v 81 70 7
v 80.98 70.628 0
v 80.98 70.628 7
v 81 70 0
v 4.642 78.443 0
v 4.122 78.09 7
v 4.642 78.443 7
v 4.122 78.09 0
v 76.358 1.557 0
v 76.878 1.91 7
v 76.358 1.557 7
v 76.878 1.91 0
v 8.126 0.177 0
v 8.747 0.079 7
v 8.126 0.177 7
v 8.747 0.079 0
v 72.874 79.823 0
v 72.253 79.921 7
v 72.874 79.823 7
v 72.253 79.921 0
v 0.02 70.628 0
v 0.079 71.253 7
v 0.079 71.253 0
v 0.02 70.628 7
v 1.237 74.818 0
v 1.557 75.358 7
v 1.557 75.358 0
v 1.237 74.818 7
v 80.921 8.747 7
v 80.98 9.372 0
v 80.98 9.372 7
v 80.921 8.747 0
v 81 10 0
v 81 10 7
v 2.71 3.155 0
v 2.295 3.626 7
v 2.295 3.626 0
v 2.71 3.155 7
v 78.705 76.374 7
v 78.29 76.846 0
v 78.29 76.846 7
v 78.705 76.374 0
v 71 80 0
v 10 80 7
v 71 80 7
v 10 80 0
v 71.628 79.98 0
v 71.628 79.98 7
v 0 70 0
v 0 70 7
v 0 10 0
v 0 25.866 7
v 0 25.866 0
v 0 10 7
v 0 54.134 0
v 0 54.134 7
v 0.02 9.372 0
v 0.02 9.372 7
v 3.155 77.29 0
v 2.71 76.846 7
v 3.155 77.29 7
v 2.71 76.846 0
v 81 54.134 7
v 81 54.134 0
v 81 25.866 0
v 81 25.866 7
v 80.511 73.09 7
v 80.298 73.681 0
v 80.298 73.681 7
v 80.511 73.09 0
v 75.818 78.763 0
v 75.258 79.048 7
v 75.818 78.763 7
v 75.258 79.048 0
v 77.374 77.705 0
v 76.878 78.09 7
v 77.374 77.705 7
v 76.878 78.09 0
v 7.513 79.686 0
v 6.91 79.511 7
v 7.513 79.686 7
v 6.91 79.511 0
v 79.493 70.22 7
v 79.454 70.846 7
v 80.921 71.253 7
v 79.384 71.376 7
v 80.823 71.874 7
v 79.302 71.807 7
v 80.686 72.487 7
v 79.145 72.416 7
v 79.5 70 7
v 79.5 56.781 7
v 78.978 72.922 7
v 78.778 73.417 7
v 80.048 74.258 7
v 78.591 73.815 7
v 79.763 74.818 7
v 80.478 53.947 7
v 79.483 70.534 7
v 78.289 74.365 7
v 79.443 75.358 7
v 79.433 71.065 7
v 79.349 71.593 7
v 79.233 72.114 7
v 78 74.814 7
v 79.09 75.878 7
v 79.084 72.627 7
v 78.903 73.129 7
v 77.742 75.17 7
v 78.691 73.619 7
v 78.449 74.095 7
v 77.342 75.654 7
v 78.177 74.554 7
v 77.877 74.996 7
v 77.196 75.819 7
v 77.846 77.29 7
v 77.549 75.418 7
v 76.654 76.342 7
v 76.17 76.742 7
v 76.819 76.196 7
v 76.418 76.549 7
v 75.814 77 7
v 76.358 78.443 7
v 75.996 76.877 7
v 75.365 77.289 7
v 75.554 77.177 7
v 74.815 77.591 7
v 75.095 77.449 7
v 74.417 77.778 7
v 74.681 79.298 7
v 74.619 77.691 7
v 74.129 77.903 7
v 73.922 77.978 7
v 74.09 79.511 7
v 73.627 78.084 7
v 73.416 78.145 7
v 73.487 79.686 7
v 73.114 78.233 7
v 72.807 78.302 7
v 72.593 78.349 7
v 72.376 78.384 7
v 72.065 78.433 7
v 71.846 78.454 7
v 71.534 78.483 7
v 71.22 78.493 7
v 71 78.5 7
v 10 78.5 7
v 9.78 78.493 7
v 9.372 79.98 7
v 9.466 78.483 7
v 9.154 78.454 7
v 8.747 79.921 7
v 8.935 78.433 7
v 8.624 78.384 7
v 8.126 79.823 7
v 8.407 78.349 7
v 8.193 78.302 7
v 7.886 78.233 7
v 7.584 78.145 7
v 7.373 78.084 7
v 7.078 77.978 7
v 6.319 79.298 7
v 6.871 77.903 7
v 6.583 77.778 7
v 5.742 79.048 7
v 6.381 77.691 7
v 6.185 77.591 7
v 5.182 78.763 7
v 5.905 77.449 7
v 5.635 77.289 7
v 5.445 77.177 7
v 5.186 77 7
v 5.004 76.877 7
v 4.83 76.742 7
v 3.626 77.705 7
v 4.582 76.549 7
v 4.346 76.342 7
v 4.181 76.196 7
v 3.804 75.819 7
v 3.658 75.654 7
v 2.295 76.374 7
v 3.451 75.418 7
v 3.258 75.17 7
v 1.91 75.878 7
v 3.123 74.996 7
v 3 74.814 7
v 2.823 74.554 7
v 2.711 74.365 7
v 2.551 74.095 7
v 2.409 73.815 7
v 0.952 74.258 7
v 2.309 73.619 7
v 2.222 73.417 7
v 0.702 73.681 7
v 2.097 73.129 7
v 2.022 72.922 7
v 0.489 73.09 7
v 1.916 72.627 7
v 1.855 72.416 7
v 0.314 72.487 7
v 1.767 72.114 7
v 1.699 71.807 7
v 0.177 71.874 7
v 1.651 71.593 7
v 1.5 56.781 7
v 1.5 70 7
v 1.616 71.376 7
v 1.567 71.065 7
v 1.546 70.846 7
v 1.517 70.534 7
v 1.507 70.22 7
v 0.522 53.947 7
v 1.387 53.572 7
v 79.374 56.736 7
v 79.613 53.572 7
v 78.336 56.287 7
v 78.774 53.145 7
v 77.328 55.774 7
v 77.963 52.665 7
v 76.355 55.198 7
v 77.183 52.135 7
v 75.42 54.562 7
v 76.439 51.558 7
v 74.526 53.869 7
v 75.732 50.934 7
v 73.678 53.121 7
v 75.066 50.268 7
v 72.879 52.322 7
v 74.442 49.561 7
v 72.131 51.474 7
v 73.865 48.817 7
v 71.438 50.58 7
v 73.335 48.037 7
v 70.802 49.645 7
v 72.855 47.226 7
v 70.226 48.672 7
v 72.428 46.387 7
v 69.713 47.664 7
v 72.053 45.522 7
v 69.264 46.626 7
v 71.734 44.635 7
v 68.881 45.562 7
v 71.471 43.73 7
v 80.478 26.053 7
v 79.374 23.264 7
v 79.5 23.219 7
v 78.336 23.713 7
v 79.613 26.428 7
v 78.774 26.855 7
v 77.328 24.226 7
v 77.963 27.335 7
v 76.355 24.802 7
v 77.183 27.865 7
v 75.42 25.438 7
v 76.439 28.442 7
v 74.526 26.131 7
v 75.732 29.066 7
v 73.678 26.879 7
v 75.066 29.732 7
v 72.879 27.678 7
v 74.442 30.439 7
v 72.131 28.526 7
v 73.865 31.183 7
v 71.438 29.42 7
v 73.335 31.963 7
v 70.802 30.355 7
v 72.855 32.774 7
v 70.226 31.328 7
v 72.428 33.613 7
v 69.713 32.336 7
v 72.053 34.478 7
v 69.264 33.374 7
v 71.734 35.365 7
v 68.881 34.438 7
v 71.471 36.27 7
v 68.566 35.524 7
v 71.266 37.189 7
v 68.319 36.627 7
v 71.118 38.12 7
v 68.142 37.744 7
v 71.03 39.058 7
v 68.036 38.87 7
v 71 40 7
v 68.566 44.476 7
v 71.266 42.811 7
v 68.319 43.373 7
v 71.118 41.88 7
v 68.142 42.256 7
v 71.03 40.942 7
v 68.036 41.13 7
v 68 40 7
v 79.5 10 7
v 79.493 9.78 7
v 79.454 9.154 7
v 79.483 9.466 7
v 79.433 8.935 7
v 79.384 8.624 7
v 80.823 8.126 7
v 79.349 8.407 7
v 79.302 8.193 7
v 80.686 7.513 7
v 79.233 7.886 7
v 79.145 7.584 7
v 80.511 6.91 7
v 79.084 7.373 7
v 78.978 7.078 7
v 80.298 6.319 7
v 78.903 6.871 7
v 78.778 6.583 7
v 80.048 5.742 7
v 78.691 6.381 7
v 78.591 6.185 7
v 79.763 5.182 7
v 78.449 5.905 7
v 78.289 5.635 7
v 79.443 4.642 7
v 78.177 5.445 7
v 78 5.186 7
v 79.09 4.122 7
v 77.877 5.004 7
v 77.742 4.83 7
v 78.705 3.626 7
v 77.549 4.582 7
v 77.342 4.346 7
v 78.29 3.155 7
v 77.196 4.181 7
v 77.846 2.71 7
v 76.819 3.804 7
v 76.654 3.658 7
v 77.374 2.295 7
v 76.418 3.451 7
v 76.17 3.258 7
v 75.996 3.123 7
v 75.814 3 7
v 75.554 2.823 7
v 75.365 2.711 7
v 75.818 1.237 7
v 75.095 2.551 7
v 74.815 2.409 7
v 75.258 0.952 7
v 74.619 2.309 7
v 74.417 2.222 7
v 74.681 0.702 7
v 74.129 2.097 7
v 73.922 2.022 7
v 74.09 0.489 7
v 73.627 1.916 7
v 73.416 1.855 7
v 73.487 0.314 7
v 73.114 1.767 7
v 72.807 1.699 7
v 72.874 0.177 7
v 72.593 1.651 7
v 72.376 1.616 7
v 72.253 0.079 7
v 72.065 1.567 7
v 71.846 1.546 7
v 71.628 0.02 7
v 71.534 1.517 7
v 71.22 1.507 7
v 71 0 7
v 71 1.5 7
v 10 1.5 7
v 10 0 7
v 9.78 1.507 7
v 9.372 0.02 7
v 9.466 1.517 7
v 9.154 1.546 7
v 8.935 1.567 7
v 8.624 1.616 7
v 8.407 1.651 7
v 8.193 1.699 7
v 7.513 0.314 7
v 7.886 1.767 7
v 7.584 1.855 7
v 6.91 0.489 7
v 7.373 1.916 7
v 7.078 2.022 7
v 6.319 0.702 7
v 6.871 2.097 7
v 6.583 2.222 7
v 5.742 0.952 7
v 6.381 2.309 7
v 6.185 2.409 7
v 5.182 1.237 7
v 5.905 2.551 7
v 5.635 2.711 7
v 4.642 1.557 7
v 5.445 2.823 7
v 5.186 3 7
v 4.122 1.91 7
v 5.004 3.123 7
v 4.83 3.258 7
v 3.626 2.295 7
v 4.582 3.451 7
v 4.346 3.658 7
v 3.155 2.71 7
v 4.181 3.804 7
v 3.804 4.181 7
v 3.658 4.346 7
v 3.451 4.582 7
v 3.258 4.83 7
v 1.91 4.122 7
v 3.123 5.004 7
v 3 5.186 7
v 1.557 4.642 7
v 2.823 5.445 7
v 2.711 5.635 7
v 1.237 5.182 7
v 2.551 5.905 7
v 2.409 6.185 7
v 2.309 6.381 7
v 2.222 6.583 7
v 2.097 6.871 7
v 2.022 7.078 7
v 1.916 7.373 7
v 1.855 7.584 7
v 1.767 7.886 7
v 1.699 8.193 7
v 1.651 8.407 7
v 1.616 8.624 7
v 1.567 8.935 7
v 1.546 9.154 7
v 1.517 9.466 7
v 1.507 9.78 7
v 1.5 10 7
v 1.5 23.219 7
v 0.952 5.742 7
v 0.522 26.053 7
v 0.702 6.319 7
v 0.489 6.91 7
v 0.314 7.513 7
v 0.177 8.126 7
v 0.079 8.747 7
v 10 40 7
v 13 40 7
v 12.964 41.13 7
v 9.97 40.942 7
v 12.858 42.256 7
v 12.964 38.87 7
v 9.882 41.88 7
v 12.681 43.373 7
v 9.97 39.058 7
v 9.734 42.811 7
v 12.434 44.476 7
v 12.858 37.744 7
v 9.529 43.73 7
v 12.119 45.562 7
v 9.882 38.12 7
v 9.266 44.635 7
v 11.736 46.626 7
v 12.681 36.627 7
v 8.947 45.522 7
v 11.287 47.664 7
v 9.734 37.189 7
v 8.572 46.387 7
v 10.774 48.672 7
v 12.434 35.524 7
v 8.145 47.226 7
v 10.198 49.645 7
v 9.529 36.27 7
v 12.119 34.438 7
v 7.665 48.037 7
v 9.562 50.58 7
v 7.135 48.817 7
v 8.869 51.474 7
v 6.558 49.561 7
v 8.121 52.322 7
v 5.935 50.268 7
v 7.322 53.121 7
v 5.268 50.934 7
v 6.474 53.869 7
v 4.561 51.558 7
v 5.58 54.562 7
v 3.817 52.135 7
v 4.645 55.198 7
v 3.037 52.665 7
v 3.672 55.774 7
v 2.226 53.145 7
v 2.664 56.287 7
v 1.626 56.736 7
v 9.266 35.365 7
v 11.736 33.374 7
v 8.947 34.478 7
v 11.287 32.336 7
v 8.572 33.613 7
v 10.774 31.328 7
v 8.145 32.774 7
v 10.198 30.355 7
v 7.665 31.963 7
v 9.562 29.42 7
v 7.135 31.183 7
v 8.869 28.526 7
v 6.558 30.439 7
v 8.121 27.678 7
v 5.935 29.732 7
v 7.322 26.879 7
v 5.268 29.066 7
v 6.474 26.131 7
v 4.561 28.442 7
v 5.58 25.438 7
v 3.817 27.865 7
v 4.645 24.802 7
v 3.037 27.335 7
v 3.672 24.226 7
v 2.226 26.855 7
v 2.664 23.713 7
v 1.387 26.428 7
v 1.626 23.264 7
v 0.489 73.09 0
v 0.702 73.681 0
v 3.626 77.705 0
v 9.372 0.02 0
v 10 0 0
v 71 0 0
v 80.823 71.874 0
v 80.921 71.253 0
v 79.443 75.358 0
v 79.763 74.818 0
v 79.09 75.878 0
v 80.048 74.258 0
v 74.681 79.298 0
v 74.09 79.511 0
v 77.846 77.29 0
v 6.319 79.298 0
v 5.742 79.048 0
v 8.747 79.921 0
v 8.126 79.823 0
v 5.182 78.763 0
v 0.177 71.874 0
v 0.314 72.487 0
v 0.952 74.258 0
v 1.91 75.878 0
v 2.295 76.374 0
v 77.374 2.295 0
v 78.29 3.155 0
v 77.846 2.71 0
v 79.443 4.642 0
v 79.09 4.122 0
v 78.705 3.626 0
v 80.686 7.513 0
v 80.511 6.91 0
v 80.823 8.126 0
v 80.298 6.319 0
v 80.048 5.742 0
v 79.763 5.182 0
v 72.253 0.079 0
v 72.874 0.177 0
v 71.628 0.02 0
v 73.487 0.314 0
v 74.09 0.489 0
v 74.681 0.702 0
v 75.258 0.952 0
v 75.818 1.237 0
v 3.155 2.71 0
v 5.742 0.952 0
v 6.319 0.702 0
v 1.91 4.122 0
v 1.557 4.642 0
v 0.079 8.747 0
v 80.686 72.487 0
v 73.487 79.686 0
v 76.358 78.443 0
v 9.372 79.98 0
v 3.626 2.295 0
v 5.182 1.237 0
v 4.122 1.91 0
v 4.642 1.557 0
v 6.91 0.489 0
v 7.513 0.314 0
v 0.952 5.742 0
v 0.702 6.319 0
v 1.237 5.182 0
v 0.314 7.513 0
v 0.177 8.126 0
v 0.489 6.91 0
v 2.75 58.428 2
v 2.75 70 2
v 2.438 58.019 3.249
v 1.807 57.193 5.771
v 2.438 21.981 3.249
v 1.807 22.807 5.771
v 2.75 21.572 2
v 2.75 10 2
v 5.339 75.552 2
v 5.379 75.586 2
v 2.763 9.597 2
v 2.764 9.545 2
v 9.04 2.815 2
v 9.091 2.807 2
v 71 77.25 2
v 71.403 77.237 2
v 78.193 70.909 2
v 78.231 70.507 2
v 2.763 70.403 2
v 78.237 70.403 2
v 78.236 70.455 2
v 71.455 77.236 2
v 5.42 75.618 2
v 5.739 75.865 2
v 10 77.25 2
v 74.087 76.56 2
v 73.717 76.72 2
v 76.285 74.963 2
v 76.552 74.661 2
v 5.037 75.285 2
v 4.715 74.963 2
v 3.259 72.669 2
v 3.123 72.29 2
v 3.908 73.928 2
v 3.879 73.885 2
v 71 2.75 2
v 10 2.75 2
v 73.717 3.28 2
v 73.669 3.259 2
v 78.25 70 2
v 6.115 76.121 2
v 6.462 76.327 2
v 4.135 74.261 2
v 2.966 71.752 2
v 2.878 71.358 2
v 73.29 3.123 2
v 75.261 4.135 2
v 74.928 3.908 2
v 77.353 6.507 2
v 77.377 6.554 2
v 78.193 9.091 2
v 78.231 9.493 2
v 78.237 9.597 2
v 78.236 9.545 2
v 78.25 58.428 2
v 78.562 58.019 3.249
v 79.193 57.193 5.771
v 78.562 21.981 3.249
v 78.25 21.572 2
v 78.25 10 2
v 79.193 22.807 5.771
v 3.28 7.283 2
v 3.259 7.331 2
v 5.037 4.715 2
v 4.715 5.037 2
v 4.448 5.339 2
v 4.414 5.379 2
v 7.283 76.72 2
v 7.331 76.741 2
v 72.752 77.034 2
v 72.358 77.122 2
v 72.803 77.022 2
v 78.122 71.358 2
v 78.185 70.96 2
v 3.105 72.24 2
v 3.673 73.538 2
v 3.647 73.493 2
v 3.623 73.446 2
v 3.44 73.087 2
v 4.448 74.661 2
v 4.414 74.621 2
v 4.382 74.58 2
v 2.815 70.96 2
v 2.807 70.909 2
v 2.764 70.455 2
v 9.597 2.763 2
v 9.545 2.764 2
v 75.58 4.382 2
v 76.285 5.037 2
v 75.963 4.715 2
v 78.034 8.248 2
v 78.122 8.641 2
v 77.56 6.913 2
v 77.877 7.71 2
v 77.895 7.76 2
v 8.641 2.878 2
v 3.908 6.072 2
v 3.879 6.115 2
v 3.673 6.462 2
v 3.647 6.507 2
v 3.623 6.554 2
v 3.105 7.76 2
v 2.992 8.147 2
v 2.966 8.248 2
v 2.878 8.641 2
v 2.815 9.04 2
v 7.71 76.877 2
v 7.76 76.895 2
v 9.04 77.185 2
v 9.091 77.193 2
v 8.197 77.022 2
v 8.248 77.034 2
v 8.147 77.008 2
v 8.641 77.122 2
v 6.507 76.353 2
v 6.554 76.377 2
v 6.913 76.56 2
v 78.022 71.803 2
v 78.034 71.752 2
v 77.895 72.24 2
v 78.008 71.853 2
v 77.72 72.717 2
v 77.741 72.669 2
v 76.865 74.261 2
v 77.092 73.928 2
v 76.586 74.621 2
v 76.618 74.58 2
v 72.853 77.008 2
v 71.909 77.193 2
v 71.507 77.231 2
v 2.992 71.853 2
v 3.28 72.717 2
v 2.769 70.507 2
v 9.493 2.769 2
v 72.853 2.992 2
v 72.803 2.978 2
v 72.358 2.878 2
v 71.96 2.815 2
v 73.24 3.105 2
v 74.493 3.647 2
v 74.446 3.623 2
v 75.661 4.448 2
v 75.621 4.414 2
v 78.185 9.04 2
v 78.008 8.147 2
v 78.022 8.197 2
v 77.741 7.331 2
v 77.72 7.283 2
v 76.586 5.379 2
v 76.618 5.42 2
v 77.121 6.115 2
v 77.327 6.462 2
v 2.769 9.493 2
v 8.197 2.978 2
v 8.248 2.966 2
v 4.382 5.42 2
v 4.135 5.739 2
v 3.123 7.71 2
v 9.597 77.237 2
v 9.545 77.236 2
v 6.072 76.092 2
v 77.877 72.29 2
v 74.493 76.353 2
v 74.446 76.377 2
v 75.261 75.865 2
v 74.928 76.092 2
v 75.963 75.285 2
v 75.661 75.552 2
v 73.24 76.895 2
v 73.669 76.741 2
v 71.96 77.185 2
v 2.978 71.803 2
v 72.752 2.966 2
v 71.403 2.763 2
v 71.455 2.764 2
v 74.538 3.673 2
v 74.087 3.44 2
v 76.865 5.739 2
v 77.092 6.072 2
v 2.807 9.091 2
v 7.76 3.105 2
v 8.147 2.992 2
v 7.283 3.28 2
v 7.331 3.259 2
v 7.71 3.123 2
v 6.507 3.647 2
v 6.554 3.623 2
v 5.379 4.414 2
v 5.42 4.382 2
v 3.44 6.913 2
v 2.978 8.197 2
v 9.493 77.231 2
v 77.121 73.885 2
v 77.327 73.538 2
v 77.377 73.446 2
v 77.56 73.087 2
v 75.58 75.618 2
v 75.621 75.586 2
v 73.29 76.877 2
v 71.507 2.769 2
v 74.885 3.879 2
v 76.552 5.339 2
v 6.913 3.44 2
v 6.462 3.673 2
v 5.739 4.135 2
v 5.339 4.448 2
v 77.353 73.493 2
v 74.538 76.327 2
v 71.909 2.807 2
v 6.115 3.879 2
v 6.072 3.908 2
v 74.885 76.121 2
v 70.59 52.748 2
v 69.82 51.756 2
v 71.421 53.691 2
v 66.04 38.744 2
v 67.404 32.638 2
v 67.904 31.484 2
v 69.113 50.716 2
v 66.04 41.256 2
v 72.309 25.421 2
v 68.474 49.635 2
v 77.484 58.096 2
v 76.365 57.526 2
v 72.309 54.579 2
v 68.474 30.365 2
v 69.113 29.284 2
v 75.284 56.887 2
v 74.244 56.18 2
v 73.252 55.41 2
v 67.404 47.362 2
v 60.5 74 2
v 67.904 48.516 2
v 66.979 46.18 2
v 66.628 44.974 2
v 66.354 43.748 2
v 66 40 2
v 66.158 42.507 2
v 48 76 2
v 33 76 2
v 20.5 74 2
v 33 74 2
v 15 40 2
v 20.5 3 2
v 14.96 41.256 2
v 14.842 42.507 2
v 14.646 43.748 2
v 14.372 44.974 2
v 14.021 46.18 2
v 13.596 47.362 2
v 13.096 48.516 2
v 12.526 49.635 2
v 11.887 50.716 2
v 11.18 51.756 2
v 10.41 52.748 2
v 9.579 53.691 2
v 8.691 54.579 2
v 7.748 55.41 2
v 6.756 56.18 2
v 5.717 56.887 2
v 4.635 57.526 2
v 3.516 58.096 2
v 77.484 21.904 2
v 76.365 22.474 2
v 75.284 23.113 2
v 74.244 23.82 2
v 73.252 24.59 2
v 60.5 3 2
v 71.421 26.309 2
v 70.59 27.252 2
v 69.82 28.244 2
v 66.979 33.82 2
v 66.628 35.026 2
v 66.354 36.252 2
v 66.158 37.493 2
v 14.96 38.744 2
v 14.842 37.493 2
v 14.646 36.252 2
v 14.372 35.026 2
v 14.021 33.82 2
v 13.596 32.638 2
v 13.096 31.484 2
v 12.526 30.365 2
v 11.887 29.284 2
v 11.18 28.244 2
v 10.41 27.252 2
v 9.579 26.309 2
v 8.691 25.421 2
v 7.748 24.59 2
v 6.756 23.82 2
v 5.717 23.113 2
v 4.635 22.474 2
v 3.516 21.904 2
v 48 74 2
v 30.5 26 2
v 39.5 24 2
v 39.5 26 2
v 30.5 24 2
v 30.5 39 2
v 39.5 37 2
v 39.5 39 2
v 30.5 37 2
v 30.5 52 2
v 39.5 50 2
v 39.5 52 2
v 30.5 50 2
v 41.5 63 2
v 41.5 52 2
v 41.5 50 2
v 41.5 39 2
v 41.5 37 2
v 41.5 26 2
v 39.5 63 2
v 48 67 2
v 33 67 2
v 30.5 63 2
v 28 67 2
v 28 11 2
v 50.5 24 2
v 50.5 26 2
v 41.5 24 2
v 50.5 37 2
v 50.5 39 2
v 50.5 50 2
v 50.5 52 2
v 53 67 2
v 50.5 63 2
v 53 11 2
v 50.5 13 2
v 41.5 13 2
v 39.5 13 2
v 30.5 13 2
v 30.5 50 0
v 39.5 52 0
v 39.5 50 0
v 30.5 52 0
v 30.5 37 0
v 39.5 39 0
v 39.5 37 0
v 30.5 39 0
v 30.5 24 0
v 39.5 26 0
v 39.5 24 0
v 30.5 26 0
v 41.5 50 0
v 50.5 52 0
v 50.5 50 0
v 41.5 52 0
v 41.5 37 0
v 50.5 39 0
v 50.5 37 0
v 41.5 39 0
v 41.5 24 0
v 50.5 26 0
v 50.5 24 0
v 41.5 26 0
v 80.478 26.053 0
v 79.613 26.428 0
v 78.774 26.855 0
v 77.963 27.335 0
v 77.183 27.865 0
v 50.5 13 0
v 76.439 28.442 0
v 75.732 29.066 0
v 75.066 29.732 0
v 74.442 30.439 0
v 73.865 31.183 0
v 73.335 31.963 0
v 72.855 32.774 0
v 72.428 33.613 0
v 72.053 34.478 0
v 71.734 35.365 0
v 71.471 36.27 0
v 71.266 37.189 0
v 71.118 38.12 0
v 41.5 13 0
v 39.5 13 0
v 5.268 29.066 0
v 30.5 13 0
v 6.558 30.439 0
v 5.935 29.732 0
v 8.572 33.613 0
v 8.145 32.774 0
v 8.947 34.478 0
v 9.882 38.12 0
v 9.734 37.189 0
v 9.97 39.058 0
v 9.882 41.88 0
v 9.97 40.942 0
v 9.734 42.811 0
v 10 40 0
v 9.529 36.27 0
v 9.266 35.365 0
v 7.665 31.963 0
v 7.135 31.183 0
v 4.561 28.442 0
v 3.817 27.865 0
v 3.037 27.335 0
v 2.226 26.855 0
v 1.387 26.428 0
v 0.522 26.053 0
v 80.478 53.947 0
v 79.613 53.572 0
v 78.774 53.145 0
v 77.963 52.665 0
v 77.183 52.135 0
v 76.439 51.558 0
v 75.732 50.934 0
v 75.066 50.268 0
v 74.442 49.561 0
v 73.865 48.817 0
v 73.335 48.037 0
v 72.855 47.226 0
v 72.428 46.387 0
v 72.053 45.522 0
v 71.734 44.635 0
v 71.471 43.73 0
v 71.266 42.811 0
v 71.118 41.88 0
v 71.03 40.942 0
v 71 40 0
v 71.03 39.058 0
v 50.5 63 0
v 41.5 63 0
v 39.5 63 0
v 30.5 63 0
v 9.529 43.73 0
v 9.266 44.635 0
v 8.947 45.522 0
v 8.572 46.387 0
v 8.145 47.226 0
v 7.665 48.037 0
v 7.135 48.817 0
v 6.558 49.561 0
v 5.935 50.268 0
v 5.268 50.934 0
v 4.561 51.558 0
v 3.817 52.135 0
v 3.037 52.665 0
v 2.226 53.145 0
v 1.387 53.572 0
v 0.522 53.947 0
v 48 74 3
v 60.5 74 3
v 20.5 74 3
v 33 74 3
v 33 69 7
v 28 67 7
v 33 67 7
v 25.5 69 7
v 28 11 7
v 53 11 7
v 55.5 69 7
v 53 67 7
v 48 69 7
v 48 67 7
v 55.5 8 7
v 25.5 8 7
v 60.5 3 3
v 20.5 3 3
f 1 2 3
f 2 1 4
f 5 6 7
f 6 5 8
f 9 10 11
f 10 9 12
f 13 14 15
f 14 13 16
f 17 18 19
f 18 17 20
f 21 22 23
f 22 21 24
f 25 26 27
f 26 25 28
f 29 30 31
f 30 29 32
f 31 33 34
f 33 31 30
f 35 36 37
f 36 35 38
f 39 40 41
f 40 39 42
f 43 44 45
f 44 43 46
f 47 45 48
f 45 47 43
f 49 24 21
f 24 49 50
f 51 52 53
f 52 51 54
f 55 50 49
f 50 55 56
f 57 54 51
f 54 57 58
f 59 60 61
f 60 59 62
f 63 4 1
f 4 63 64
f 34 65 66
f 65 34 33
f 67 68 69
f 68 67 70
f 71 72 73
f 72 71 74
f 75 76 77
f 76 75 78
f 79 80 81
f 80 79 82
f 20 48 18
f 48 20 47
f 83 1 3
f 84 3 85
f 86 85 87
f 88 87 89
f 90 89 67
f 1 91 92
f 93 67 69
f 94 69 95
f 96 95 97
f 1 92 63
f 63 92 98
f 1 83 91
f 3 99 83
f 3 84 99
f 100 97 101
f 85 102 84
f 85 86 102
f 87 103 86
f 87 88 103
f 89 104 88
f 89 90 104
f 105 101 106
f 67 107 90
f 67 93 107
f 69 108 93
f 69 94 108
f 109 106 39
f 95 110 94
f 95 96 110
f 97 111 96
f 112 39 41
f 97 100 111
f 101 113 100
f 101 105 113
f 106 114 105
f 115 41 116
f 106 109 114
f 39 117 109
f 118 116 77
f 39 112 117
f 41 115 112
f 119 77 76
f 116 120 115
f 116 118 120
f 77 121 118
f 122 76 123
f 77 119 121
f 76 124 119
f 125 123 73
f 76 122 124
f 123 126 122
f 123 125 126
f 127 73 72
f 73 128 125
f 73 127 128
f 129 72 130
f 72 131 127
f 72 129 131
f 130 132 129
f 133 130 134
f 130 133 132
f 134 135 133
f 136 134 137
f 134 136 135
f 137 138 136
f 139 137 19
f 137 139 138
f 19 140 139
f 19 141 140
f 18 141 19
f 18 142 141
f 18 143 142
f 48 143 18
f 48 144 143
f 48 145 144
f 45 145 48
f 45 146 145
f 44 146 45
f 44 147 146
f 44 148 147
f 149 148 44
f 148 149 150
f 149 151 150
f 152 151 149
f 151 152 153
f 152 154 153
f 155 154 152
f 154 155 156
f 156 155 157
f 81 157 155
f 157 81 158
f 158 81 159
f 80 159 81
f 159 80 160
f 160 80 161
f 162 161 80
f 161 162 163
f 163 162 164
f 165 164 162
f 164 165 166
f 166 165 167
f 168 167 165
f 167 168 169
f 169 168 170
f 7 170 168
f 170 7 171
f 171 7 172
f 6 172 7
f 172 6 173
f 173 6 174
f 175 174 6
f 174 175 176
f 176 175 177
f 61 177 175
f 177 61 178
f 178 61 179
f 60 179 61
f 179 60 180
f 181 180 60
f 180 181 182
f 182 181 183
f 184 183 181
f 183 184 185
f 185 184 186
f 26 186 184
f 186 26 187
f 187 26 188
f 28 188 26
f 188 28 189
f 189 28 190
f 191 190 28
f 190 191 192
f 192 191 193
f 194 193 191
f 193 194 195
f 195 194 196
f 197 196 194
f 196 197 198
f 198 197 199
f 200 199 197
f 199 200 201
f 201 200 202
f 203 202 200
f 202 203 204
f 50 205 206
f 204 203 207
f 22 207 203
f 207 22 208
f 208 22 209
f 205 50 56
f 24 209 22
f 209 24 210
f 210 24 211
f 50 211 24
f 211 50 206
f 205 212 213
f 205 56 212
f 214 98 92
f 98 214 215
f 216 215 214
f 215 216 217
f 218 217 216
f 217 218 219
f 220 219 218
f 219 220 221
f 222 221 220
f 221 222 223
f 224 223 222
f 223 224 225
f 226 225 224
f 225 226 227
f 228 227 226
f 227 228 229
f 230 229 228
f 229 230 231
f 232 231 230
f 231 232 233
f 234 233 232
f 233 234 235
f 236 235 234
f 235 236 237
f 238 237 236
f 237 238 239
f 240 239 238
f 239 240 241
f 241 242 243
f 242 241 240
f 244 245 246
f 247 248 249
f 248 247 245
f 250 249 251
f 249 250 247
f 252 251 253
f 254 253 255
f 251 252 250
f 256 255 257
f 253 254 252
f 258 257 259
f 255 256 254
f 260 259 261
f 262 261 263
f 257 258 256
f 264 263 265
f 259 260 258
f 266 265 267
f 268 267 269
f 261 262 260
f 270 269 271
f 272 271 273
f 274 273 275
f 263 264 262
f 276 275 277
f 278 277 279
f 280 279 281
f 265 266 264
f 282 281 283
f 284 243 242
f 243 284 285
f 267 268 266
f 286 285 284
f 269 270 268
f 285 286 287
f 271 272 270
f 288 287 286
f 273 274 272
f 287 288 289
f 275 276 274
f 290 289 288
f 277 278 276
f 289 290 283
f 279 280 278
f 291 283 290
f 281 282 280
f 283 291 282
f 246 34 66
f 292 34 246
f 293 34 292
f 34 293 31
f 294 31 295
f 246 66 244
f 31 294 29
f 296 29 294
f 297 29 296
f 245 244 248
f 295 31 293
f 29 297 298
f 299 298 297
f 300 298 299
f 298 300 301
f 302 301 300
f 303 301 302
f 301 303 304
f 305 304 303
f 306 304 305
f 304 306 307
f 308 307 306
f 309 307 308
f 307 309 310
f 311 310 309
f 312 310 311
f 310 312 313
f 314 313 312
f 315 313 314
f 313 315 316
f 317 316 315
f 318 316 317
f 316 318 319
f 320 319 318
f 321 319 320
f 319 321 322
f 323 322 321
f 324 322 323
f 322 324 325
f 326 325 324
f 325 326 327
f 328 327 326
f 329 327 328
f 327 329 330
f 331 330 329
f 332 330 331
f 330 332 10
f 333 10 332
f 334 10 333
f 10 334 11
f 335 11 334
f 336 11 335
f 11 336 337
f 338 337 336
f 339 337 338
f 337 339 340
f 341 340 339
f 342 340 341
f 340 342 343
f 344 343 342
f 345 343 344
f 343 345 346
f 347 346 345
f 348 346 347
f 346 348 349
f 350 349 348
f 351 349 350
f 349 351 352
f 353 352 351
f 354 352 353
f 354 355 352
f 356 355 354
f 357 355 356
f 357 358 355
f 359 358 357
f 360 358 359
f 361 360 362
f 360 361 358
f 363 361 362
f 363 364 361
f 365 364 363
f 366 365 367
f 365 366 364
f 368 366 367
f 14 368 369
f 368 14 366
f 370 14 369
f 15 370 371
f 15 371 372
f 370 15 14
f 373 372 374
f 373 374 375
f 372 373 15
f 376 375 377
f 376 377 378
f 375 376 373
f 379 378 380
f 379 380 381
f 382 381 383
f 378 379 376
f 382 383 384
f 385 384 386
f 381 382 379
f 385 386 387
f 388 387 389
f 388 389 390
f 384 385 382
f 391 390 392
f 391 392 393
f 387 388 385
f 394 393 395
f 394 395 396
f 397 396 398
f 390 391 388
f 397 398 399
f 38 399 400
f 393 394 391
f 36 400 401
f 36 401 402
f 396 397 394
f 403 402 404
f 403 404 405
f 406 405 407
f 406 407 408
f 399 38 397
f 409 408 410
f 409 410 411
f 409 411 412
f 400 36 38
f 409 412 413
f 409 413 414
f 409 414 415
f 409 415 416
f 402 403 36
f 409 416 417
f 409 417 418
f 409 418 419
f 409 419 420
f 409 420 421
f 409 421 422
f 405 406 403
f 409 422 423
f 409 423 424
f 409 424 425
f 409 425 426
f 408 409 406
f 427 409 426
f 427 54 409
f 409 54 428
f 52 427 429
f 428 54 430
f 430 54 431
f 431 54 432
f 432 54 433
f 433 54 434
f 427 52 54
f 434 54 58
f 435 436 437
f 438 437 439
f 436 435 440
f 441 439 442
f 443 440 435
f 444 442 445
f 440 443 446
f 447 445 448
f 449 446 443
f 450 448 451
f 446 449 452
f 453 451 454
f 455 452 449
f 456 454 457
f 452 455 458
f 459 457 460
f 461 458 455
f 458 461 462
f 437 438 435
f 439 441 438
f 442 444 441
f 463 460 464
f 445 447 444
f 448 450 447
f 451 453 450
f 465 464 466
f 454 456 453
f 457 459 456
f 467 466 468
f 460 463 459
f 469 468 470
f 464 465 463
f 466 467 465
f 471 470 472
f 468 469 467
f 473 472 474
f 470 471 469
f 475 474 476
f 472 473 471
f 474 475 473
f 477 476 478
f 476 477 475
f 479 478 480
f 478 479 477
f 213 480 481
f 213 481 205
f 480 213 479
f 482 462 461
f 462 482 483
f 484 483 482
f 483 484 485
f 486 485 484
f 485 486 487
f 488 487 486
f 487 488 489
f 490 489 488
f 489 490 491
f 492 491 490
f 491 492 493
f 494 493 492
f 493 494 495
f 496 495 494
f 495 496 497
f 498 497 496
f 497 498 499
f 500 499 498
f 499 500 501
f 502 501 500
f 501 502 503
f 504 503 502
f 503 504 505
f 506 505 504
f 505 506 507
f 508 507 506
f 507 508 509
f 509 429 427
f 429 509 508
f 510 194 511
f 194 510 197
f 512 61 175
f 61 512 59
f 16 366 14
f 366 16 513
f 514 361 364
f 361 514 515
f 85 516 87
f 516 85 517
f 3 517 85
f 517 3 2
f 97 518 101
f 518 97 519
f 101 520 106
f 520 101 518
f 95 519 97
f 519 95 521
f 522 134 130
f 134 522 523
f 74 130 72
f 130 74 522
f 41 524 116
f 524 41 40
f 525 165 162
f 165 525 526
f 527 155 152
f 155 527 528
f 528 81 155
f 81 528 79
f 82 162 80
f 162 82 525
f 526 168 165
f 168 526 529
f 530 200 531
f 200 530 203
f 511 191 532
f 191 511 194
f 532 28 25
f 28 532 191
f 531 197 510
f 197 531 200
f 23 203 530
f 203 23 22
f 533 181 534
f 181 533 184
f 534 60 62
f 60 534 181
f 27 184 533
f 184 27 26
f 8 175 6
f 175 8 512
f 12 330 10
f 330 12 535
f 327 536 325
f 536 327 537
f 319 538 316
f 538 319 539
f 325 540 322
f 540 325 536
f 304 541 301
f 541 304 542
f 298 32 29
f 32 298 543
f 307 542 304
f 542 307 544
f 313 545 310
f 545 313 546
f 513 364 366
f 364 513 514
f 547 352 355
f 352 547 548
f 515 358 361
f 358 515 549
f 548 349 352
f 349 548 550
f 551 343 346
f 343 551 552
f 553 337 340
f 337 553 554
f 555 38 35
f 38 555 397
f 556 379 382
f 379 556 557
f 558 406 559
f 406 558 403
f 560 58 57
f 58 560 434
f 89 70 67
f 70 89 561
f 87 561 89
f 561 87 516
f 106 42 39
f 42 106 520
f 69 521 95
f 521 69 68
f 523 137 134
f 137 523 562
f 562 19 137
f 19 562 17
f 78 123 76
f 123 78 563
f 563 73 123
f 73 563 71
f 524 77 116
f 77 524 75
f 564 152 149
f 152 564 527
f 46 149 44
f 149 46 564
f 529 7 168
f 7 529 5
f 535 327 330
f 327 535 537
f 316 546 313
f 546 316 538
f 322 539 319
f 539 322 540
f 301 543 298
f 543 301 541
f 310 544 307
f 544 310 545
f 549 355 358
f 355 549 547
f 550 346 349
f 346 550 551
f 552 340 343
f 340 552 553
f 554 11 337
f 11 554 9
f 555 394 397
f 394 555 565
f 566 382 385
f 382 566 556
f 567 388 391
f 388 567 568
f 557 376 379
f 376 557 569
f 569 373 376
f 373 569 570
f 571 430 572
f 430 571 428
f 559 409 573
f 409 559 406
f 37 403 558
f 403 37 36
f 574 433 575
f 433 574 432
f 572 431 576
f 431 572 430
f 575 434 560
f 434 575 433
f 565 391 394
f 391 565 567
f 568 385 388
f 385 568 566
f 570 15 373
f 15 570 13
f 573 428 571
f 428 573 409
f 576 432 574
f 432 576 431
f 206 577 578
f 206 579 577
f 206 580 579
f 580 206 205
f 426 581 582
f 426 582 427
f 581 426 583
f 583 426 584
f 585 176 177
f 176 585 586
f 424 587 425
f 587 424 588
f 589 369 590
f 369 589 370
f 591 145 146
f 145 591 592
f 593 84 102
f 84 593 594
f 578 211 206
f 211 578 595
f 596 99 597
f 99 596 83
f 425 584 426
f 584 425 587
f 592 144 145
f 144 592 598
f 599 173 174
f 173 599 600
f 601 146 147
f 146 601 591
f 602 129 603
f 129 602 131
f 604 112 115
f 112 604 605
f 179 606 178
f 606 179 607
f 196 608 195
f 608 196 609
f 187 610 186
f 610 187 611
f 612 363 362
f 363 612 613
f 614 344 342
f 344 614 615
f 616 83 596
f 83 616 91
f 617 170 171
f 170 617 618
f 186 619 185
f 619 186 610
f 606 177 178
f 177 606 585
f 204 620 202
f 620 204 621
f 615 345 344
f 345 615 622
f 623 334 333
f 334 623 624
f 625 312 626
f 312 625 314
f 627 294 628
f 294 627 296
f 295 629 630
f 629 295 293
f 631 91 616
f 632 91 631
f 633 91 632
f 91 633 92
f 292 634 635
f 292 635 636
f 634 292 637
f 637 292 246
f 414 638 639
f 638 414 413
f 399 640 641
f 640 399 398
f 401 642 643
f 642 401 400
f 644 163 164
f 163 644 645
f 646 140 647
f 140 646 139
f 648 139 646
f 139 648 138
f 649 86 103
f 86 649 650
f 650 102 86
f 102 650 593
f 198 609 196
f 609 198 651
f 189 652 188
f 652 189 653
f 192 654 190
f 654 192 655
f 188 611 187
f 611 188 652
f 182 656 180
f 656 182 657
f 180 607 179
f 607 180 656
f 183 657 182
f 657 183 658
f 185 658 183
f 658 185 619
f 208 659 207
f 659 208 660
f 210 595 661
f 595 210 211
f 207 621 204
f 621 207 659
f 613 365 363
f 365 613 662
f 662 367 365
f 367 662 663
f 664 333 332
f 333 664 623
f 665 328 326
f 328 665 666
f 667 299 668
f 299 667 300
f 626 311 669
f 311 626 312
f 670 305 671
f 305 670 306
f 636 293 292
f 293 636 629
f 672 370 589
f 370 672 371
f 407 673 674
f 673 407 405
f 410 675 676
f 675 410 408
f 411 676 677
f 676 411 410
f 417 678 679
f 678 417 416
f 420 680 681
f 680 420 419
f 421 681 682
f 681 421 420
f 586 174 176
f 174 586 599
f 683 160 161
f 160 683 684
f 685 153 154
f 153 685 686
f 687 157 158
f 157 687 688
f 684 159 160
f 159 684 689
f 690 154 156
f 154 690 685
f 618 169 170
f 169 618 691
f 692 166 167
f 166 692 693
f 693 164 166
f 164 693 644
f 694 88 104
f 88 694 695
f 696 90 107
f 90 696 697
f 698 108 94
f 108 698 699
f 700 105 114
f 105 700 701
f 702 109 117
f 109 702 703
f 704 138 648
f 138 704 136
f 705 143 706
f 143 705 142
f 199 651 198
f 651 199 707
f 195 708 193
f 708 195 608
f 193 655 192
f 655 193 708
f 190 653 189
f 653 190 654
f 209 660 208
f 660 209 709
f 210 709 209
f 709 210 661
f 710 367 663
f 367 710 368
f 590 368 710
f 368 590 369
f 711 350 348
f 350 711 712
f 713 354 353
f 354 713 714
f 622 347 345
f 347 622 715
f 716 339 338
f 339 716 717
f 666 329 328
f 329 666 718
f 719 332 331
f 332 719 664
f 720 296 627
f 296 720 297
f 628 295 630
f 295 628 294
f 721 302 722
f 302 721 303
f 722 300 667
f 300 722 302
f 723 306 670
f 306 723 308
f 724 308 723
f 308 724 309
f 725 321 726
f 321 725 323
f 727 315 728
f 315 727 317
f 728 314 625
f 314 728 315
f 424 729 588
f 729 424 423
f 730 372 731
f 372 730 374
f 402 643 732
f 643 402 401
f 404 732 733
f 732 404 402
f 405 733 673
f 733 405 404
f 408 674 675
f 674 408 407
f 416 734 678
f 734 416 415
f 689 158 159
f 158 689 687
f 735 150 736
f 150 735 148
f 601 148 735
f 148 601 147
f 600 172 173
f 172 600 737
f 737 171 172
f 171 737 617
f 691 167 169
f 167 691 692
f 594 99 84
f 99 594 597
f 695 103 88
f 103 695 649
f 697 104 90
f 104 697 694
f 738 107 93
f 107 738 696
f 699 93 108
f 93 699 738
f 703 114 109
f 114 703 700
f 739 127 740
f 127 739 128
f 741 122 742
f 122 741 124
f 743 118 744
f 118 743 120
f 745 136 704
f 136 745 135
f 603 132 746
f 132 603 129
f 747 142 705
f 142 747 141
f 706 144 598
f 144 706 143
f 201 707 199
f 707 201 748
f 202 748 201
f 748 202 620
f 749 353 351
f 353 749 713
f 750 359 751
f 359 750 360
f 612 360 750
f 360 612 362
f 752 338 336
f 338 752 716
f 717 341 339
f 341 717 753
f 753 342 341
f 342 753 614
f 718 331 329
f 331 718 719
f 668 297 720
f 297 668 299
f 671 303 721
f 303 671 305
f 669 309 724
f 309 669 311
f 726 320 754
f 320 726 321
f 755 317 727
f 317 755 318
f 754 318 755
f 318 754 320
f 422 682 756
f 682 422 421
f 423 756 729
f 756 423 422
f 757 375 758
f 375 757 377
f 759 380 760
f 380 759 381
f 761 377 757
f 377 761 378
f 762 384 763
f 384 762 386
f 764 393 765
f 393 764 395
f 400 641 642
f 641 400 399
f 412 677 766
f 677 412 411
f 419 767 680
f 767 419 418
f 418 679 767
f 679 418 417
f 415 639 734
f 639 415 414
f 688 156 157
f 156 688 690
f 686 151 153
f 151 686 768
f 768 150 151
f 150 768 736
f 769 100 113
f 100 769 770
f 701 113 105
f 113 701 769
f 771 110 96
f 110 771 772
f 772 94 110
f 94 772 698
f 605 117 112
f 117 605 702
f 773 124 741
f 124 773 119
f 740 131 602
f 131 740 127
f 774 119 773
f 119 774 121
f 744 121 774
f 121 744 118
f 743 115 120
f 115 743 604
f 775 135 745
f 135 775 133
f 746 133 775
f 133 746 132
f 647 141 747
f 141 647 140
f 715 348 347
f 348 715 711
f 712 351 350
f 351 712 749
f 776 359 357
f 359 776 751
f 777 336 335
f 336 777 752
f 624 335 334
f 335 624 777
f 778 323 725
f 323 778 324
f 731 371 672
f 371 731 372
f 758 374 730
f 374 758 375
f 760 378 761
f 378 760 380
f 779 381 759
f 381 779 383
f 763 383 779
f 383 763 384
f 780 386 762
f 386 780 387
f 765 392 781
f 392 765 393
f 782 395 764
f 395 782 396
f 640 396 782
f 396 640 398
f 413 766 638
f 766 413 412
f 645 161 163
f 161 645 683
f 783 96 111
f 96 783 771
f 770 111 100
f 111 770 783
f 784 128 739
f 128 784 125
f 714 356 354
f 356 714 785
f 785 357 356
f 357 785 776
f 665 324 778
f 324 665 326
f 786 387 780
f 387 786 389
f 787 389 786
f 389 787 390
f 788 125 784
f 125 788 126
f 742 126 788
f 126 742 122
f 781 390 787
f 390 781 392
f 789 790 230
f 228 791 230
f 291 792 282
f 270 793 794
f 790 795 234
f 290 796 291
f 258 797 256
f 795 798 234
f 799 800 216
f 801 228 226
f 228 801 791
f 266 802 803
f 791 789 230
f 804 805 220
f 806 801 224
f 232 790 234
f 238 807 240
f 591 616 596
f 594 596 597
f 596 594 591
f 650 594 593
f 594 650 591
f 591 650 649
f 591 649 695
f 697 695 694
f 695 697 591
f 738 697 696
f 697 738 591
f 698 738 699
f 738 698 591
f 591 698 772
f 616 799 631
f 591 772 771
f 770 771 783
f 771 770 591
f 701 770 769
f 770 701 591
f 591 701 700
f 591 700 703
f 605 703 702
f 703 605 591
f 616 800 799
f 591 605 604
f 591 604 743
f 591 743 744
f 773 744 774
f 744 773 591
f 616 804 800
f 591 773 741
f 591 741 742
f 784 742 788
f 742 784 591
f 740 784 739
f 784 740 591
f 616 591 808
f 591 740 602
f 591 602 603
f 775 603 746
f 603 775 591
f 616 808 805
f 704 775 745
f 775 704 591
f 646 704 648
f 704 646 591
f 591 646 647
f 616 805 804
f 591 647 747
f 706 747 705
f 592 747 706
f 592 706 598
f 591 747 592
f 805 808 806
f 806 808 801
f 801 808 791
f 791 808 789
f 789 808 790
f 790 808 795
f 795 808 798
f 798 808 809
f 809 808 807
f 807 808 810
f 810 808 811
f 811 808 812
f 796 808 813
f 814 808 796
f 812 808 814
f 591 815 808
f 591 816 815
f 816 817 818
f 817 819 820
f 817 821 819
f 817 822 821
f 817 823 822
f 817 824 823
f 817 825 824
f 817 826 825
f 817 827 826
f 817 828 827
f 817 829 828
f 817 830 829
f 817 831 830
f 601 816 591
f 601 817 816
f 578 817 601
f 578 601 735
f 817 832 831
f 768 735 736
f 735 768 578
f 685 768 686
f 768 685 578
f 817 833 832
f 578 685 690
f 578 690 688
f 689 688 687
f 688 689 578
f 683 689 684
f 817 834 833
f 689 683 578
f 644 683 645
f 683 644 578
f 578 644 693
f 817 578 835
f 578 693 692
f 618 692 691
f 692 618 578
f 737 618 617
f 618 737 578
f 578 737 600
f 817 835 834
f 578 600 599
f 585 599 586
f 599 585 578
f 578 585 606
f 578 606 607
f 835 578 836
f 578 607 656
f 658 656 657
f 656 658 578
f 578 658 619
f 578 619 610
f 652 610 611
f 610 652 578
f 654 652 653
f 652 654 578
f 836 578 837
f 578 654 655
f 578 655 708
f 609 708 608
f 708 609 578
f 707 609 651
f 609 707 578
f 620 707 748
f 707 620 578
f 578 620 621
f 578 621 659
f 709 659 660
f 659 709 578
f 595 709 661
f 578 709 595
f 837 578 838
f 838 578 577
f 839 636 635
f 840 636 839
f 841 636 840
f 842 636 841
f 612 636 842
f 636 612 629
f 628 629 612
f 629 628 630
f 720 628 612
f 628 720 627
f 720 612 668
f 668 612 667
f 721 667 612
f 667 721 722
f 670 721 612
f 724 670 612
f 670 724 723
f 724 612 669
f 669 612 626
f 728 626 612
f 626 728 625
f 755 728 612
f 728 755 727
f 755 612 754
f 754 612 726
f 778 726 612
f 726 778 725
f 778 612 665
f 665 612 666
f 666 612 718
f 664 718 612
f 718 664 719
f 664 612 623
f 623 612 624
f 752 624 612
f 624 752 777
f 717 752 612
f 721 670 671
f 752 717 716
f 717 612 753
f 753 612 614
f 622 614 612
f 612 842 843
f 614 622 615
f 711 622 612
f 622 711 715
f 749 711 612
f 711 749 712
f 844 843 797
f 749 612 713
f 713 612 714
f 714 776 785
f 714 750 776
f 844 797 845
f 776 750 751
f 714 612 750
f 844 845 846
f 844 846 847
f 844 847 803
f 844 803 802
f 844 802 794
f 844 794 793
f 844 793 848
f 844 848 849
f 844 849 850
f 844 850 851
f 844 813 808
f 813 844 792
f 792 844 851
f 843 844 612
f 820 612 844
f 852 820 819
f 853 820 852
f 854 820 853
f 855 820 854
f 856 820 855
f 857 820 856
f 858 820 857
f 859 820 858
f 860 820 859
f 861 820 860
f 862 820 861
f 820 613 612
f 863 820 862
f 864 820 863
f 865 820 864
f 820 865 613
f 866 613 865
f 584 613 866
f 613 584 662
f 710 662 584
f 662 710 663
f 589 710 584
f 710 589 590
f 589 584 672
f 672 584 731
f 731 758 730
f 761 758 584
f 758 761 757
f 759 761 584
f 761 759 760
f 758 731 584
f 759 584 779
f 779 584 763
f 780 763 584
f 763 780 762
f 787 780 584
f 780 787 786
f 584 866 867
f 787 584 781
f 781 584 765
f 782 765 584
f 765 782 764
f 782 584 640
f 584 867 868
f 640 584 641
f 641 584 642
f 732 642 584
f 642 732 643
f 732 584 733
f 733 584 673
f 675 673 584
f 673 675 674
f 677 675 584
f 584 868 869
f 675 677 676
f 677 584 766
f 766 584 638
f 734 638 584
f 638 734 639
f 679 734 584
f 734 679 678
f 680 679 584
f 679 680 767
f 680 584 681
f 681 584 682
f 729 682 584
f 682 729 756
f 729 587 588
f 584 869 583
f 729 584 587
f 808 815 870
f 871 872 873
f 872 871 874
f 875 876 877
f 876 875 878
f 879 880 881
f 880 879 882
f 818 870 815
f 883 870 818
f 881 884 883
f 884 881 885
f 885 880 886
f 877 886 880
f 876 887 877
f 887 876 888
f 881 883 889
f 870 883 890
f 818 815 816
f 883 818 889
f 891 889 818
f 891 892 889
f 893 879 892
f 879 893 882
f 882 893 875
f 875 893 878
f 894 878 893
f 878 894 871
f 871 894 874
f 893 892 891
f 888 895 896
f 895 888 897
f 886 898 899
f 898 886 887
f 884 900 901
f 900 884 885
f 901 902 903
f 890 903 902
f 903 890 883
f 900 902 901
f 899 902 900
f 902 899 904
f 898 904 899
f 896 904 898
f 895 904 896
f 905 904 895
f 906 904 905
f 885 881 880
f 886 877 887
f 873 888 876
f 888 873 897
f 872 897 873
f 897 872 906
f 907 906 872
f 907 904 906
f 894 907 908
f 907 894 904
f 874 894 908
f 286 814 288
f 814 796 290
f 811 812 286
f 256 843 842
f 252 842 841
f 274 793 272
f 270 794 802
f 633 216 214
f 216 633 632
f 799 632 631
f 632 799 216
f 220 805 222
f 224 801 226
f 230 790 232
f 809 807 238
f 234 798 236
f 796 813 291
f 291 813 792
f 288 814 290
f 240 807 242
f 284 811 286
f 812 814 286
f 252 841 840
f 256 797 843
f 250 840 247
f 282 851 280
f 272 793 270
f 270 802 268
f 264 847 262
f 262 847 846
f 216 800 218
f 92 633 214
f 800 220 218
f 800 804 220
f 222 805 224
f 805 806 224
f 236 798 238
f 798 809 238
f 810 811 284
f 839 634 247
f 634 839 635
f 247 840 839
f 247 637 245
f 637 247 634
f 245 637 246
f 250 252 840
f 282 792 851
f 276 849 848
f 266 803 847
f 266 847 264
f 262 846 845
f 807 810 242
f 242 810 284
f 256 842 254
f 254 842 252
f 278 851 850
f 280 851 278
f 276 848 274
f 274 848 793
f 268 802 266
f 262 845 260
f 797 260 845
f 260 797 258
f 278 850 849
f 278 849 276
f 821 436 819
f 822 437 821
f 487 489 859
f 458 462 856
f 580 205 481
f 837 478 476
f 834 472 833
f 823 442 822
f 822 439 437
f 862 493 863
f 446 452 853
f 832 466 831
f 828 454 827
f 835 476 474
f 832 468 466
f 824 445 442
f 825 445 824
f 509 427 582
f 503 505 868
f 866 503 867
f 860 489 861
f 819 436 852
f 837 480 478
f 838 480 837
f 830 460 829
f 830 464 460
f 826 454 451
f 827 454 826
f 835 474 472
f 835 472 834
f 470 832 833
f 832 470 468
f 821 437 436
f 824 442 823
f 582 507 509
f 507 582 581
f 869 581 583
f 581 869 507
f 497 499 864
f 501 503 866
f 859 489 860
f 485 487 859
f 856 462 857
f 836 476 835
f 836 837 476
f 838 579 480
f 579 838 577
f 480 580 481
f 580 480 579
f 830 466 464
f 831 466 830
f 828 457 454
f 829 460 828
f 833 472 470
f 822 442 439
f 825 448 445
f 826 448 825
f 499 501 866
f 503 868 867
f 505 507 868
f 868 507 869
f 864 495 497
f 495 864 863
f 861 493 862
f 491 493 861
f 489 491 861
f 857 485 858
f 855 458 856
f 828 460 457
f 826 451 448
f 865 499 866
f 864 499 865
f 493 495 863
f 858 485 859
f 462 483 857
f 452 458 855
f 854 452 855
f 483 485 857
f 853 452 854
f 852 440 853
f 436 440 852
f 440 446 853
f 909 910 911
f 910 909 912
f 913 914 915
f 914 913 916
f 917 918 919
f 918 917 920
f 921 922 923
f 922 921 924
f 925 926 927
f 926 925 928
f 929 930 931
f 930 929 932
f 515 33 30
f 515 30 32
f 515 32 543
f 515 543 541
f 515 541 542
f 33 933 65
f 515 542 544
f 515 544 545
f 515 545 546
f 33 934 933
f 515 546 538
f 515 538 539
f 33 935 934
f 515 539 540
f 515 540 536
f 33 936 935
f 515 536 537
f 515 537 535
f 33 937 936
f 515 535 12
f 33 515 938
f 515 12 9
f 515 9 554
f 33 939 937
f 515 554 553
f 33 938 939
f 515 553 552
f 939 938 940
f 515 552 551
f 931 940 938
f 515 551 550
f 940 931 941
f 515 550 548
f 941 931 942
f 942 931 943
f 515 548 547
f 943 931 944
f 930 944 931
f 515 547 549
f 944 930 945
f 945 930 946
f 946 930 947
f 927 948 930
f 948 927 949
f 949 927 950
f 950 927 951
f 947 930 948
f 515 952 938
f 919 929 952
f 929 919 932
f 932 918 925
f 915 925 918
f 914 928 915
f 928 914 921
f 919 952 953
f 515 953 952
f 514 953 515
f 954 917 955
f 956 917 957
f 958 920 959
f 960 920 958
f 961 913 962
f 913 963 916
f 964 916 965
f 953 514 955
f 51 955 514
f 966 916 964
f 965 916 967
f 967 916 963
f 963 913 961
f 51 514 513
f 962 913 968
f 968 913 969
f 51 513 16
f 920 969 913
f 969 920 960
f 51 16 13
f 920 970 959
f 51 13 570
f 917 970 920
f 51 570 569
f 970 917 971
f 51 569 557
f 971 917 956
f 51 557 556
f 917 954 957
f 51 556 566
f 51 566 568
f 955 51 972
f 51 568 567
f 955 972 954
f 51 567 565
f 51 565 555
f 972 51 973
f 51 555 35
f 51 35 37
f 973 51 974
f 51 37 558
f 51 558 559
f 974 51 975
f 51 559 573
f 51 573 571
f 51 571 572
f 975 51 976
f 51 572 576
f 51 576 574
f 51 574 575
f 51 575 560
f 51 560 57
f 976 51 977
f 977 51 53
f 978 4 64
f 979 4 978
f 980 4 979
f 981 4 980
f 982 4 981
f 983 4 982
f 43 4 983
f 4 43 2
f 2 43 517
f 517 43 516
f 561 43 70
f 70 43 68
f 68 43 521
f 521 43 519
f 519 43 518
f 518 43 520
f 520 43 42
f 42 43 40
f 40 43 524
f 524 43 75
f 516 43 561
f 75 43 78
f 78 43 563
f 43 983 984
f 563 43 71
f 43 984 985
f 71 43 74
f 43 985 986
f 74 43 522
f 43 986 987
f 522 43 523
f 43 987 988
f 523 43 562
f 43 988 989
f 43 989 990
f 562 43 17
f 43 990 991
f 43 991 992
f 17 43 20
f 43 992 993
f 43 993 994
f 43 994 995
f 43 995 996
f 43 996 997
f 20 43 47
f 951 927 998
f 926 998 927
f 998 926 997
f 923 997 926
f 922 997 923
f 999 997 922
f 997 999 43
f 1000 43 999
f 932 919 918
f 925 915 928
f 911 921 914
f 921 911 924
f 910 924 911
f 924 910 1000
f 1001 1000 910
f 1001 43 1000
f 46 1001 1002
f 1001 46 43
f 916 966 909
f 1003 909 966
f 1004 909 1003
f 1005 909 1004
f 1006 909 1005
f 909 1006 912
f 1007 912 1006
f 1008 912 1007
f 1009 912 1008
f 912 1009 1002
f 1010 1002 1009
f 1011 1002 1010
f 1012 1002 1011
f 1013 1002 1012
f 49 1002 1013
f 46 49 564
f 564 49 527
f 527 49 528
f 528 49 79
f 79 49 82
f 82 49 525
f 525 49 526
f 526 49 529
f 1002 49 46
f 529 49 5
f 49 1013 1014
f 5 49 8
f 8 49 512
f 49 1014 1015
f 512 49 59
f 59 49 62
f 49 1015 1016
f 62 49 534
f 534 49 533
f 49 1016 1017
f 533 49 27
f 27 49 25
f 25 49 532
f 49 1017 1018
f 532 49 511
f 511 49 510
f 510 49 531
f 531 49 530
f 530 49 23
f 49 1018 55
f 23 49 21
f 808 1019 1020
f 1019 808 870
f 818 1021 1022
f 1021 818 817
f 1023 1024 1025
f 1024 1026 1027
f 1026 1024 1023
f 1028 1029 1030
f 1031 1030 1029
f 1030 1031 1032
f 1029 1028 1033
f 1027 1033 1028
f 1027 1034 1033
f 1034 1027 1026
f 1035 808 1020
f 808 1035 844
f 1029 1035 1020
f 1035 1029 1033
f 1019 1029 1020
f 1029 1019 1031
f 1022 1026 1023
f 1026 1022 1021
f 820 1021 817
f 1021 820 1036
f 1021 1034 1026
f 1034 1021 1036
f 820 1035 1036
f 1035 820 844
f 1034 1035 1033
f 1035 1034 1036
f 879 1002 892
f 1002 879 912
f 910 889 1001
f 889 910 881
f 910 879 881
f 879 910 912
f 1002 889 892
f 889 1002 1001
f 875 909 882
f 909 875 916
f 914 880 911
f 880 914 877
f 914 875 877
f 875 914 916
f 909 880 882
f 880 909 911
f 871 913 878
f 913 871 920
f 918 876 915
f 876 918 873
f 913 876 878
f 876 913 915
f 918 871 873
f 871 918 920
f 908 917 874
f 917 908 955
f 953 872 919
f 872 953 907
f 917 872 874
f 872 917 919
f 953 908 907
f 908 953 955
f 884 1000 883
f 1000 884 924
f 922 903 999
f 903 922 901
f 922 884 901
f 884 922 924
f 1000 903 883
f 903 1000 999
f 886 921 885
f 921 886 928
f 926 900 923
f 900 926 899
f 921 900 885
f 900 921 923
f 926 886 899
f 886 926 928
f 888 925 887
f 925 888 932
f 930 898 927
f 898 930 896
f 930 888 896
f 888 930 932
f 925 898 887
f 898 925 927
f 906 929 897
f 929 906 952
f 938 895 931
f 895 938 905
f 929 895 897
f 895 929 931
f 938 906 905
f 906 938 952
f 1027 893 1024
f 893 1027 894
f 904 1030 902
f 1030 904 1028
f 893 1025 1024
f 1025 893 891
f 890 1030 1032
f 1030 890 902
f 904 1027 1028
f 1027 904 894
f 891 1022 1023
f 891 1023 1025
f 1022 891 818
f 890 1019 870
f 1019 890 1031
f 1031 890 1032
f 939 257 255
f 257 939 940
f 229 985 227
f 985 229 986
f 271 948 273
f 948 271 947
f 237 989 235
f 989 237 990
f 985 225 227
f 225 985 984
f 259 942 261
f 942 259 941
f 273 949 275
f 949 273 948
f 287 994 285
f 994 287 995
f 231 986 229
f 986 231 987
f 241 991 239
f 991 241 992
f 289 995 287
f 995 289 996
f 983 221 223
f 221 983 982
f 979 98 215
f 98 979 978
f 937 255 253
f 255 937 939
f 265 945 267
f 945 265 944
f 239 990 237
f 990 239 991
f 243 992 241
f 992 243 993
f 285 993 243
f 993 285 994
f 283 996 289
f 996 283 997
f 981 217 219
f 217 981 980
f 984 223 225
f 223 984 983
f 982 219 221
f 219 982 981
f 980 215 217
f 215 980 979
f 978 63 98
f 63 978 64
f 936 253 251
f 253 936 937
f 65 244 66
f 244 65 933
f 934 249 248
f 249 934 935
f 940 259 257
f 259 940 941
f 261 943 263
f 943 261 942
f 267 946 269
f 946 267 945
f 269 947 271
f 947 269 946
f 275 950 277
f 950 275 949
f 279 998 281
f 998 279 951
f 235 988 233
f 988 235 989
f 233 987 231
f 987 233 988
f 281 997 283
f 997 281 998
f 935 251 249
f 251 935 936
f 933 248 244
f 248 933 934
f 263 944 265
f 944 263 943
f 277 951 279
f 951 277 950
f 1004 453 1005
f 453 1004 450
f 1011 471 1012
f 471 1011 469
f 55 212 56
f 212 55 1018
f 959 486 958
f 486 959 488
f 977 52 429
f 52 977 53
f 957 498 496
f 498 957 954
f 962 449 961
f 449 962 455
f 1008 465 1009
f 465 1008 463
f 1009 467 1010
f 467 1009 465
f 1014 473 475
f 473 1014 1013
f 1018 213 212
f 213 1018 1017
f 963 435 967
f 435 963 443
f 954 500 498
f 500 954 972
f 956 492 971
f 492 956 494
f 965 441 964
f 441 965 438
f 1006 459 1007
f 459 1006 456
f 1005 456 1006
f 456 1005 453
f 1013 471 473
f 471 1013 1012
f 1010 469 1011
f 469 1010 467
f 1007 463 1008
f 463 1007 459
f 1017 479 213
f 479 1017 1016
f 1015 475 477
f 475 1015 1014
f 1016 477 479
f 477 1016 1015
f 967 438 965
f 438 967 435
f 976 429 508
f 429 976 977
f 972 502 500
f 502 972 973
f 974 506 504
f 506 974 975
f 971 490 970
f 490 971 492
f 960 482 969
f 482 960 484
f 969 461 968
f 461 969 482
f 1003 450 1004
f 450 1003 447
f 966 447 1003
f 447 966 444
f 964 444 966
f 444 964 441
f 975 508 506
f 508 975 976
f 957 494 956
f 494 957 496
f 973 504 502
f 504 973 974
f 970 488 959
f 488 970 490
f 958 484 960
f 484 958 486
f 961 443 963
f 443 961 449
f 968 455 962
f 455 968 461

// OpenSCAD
$fn=100;

//


difference() {
  
    union() {
        
        // Main body with curved corners
        // floor plate
        hull() {
            translate([71,70,0]) cylinder(2,10,10); // far corner
            translate([10,10,0]) cylinder(2,10,10); // near corner
            translate([71,10,0]) cylinder(2,10,10); // far x corner
            translate([10,70,0]) cylinder(2,10,10); // far y corner
        }
        

        difference(){
            hull() {
                translate([71,70,1]) cylinder(6,10,10); // far corner
                translate([10,10,1]) cylinder(6,10,10); // near corner
                translate([71,10,1]) cylinder(6,10,10); // far x corner
                translate([10,70,1]) cylinder(6,10,10); // far y corner
            }
            hull() {
                translate([71,70,1]) cylinder(12,7,10); // far corner
                translate([10,10,1]) cylinder(12,7,10); // near corner
                translate([71,10,1]) cylinder(12,7,10); // far x corner
                translate([10,70,1]) cylinder(12,7,10); // far y corner
            }
        }     
            
        // LabTekII Support wall 
        translate([20.5,3,2])
        hull() {
            translate([5,5,4]) cube([30,61,1]); // wall
            cube([40,71,1]); // wall
        }
    
        // side grip-walls
        difference() {
            translate([86,40,2]) cylinder(5,20,18);
            translate([101,40,0]) cube([40,40,20], true);
        }

        difference() {
            translate([-5,40,2]) cylinder(5,20,18);
            translate([-20,40,0]) cube([40,40,20], true);
        }
    }
    
    //labtek imprinter - 25 x 63
    
    translate([28,11,2]) union() {
        // main well for LabTek - should match chamber size + tolerance
        cube([25,56,12]);
        // annoying tab
        translate([5,55,0]) cube([15,10,8]);   
                
        // viewing hole lattice
        translate([2.5,2,-5]) {
            translate([0,39,0]) cube([9,11,10]);
            translate([0,26,0]) cube([9,11,10]);
            translate([0,13,0]) cube([9,11,10]);
            translate([0,0,0]) cube([9,11,10]);
            
            translate([11,39,0]) cube([9,11,10]);
            translate([11,26,0]) cube([9,11,10]);
            translate([11,13,0]) cube([9,11,10]);
            translate([11,0,0]) cube([9,11,10]);
        }
    }
       
    // finger grips
    translate([86,40,-5]) cylinder(15,15,15); //right
    translate([-5,40,-5]) cylinder(15,15,15);
    

};
